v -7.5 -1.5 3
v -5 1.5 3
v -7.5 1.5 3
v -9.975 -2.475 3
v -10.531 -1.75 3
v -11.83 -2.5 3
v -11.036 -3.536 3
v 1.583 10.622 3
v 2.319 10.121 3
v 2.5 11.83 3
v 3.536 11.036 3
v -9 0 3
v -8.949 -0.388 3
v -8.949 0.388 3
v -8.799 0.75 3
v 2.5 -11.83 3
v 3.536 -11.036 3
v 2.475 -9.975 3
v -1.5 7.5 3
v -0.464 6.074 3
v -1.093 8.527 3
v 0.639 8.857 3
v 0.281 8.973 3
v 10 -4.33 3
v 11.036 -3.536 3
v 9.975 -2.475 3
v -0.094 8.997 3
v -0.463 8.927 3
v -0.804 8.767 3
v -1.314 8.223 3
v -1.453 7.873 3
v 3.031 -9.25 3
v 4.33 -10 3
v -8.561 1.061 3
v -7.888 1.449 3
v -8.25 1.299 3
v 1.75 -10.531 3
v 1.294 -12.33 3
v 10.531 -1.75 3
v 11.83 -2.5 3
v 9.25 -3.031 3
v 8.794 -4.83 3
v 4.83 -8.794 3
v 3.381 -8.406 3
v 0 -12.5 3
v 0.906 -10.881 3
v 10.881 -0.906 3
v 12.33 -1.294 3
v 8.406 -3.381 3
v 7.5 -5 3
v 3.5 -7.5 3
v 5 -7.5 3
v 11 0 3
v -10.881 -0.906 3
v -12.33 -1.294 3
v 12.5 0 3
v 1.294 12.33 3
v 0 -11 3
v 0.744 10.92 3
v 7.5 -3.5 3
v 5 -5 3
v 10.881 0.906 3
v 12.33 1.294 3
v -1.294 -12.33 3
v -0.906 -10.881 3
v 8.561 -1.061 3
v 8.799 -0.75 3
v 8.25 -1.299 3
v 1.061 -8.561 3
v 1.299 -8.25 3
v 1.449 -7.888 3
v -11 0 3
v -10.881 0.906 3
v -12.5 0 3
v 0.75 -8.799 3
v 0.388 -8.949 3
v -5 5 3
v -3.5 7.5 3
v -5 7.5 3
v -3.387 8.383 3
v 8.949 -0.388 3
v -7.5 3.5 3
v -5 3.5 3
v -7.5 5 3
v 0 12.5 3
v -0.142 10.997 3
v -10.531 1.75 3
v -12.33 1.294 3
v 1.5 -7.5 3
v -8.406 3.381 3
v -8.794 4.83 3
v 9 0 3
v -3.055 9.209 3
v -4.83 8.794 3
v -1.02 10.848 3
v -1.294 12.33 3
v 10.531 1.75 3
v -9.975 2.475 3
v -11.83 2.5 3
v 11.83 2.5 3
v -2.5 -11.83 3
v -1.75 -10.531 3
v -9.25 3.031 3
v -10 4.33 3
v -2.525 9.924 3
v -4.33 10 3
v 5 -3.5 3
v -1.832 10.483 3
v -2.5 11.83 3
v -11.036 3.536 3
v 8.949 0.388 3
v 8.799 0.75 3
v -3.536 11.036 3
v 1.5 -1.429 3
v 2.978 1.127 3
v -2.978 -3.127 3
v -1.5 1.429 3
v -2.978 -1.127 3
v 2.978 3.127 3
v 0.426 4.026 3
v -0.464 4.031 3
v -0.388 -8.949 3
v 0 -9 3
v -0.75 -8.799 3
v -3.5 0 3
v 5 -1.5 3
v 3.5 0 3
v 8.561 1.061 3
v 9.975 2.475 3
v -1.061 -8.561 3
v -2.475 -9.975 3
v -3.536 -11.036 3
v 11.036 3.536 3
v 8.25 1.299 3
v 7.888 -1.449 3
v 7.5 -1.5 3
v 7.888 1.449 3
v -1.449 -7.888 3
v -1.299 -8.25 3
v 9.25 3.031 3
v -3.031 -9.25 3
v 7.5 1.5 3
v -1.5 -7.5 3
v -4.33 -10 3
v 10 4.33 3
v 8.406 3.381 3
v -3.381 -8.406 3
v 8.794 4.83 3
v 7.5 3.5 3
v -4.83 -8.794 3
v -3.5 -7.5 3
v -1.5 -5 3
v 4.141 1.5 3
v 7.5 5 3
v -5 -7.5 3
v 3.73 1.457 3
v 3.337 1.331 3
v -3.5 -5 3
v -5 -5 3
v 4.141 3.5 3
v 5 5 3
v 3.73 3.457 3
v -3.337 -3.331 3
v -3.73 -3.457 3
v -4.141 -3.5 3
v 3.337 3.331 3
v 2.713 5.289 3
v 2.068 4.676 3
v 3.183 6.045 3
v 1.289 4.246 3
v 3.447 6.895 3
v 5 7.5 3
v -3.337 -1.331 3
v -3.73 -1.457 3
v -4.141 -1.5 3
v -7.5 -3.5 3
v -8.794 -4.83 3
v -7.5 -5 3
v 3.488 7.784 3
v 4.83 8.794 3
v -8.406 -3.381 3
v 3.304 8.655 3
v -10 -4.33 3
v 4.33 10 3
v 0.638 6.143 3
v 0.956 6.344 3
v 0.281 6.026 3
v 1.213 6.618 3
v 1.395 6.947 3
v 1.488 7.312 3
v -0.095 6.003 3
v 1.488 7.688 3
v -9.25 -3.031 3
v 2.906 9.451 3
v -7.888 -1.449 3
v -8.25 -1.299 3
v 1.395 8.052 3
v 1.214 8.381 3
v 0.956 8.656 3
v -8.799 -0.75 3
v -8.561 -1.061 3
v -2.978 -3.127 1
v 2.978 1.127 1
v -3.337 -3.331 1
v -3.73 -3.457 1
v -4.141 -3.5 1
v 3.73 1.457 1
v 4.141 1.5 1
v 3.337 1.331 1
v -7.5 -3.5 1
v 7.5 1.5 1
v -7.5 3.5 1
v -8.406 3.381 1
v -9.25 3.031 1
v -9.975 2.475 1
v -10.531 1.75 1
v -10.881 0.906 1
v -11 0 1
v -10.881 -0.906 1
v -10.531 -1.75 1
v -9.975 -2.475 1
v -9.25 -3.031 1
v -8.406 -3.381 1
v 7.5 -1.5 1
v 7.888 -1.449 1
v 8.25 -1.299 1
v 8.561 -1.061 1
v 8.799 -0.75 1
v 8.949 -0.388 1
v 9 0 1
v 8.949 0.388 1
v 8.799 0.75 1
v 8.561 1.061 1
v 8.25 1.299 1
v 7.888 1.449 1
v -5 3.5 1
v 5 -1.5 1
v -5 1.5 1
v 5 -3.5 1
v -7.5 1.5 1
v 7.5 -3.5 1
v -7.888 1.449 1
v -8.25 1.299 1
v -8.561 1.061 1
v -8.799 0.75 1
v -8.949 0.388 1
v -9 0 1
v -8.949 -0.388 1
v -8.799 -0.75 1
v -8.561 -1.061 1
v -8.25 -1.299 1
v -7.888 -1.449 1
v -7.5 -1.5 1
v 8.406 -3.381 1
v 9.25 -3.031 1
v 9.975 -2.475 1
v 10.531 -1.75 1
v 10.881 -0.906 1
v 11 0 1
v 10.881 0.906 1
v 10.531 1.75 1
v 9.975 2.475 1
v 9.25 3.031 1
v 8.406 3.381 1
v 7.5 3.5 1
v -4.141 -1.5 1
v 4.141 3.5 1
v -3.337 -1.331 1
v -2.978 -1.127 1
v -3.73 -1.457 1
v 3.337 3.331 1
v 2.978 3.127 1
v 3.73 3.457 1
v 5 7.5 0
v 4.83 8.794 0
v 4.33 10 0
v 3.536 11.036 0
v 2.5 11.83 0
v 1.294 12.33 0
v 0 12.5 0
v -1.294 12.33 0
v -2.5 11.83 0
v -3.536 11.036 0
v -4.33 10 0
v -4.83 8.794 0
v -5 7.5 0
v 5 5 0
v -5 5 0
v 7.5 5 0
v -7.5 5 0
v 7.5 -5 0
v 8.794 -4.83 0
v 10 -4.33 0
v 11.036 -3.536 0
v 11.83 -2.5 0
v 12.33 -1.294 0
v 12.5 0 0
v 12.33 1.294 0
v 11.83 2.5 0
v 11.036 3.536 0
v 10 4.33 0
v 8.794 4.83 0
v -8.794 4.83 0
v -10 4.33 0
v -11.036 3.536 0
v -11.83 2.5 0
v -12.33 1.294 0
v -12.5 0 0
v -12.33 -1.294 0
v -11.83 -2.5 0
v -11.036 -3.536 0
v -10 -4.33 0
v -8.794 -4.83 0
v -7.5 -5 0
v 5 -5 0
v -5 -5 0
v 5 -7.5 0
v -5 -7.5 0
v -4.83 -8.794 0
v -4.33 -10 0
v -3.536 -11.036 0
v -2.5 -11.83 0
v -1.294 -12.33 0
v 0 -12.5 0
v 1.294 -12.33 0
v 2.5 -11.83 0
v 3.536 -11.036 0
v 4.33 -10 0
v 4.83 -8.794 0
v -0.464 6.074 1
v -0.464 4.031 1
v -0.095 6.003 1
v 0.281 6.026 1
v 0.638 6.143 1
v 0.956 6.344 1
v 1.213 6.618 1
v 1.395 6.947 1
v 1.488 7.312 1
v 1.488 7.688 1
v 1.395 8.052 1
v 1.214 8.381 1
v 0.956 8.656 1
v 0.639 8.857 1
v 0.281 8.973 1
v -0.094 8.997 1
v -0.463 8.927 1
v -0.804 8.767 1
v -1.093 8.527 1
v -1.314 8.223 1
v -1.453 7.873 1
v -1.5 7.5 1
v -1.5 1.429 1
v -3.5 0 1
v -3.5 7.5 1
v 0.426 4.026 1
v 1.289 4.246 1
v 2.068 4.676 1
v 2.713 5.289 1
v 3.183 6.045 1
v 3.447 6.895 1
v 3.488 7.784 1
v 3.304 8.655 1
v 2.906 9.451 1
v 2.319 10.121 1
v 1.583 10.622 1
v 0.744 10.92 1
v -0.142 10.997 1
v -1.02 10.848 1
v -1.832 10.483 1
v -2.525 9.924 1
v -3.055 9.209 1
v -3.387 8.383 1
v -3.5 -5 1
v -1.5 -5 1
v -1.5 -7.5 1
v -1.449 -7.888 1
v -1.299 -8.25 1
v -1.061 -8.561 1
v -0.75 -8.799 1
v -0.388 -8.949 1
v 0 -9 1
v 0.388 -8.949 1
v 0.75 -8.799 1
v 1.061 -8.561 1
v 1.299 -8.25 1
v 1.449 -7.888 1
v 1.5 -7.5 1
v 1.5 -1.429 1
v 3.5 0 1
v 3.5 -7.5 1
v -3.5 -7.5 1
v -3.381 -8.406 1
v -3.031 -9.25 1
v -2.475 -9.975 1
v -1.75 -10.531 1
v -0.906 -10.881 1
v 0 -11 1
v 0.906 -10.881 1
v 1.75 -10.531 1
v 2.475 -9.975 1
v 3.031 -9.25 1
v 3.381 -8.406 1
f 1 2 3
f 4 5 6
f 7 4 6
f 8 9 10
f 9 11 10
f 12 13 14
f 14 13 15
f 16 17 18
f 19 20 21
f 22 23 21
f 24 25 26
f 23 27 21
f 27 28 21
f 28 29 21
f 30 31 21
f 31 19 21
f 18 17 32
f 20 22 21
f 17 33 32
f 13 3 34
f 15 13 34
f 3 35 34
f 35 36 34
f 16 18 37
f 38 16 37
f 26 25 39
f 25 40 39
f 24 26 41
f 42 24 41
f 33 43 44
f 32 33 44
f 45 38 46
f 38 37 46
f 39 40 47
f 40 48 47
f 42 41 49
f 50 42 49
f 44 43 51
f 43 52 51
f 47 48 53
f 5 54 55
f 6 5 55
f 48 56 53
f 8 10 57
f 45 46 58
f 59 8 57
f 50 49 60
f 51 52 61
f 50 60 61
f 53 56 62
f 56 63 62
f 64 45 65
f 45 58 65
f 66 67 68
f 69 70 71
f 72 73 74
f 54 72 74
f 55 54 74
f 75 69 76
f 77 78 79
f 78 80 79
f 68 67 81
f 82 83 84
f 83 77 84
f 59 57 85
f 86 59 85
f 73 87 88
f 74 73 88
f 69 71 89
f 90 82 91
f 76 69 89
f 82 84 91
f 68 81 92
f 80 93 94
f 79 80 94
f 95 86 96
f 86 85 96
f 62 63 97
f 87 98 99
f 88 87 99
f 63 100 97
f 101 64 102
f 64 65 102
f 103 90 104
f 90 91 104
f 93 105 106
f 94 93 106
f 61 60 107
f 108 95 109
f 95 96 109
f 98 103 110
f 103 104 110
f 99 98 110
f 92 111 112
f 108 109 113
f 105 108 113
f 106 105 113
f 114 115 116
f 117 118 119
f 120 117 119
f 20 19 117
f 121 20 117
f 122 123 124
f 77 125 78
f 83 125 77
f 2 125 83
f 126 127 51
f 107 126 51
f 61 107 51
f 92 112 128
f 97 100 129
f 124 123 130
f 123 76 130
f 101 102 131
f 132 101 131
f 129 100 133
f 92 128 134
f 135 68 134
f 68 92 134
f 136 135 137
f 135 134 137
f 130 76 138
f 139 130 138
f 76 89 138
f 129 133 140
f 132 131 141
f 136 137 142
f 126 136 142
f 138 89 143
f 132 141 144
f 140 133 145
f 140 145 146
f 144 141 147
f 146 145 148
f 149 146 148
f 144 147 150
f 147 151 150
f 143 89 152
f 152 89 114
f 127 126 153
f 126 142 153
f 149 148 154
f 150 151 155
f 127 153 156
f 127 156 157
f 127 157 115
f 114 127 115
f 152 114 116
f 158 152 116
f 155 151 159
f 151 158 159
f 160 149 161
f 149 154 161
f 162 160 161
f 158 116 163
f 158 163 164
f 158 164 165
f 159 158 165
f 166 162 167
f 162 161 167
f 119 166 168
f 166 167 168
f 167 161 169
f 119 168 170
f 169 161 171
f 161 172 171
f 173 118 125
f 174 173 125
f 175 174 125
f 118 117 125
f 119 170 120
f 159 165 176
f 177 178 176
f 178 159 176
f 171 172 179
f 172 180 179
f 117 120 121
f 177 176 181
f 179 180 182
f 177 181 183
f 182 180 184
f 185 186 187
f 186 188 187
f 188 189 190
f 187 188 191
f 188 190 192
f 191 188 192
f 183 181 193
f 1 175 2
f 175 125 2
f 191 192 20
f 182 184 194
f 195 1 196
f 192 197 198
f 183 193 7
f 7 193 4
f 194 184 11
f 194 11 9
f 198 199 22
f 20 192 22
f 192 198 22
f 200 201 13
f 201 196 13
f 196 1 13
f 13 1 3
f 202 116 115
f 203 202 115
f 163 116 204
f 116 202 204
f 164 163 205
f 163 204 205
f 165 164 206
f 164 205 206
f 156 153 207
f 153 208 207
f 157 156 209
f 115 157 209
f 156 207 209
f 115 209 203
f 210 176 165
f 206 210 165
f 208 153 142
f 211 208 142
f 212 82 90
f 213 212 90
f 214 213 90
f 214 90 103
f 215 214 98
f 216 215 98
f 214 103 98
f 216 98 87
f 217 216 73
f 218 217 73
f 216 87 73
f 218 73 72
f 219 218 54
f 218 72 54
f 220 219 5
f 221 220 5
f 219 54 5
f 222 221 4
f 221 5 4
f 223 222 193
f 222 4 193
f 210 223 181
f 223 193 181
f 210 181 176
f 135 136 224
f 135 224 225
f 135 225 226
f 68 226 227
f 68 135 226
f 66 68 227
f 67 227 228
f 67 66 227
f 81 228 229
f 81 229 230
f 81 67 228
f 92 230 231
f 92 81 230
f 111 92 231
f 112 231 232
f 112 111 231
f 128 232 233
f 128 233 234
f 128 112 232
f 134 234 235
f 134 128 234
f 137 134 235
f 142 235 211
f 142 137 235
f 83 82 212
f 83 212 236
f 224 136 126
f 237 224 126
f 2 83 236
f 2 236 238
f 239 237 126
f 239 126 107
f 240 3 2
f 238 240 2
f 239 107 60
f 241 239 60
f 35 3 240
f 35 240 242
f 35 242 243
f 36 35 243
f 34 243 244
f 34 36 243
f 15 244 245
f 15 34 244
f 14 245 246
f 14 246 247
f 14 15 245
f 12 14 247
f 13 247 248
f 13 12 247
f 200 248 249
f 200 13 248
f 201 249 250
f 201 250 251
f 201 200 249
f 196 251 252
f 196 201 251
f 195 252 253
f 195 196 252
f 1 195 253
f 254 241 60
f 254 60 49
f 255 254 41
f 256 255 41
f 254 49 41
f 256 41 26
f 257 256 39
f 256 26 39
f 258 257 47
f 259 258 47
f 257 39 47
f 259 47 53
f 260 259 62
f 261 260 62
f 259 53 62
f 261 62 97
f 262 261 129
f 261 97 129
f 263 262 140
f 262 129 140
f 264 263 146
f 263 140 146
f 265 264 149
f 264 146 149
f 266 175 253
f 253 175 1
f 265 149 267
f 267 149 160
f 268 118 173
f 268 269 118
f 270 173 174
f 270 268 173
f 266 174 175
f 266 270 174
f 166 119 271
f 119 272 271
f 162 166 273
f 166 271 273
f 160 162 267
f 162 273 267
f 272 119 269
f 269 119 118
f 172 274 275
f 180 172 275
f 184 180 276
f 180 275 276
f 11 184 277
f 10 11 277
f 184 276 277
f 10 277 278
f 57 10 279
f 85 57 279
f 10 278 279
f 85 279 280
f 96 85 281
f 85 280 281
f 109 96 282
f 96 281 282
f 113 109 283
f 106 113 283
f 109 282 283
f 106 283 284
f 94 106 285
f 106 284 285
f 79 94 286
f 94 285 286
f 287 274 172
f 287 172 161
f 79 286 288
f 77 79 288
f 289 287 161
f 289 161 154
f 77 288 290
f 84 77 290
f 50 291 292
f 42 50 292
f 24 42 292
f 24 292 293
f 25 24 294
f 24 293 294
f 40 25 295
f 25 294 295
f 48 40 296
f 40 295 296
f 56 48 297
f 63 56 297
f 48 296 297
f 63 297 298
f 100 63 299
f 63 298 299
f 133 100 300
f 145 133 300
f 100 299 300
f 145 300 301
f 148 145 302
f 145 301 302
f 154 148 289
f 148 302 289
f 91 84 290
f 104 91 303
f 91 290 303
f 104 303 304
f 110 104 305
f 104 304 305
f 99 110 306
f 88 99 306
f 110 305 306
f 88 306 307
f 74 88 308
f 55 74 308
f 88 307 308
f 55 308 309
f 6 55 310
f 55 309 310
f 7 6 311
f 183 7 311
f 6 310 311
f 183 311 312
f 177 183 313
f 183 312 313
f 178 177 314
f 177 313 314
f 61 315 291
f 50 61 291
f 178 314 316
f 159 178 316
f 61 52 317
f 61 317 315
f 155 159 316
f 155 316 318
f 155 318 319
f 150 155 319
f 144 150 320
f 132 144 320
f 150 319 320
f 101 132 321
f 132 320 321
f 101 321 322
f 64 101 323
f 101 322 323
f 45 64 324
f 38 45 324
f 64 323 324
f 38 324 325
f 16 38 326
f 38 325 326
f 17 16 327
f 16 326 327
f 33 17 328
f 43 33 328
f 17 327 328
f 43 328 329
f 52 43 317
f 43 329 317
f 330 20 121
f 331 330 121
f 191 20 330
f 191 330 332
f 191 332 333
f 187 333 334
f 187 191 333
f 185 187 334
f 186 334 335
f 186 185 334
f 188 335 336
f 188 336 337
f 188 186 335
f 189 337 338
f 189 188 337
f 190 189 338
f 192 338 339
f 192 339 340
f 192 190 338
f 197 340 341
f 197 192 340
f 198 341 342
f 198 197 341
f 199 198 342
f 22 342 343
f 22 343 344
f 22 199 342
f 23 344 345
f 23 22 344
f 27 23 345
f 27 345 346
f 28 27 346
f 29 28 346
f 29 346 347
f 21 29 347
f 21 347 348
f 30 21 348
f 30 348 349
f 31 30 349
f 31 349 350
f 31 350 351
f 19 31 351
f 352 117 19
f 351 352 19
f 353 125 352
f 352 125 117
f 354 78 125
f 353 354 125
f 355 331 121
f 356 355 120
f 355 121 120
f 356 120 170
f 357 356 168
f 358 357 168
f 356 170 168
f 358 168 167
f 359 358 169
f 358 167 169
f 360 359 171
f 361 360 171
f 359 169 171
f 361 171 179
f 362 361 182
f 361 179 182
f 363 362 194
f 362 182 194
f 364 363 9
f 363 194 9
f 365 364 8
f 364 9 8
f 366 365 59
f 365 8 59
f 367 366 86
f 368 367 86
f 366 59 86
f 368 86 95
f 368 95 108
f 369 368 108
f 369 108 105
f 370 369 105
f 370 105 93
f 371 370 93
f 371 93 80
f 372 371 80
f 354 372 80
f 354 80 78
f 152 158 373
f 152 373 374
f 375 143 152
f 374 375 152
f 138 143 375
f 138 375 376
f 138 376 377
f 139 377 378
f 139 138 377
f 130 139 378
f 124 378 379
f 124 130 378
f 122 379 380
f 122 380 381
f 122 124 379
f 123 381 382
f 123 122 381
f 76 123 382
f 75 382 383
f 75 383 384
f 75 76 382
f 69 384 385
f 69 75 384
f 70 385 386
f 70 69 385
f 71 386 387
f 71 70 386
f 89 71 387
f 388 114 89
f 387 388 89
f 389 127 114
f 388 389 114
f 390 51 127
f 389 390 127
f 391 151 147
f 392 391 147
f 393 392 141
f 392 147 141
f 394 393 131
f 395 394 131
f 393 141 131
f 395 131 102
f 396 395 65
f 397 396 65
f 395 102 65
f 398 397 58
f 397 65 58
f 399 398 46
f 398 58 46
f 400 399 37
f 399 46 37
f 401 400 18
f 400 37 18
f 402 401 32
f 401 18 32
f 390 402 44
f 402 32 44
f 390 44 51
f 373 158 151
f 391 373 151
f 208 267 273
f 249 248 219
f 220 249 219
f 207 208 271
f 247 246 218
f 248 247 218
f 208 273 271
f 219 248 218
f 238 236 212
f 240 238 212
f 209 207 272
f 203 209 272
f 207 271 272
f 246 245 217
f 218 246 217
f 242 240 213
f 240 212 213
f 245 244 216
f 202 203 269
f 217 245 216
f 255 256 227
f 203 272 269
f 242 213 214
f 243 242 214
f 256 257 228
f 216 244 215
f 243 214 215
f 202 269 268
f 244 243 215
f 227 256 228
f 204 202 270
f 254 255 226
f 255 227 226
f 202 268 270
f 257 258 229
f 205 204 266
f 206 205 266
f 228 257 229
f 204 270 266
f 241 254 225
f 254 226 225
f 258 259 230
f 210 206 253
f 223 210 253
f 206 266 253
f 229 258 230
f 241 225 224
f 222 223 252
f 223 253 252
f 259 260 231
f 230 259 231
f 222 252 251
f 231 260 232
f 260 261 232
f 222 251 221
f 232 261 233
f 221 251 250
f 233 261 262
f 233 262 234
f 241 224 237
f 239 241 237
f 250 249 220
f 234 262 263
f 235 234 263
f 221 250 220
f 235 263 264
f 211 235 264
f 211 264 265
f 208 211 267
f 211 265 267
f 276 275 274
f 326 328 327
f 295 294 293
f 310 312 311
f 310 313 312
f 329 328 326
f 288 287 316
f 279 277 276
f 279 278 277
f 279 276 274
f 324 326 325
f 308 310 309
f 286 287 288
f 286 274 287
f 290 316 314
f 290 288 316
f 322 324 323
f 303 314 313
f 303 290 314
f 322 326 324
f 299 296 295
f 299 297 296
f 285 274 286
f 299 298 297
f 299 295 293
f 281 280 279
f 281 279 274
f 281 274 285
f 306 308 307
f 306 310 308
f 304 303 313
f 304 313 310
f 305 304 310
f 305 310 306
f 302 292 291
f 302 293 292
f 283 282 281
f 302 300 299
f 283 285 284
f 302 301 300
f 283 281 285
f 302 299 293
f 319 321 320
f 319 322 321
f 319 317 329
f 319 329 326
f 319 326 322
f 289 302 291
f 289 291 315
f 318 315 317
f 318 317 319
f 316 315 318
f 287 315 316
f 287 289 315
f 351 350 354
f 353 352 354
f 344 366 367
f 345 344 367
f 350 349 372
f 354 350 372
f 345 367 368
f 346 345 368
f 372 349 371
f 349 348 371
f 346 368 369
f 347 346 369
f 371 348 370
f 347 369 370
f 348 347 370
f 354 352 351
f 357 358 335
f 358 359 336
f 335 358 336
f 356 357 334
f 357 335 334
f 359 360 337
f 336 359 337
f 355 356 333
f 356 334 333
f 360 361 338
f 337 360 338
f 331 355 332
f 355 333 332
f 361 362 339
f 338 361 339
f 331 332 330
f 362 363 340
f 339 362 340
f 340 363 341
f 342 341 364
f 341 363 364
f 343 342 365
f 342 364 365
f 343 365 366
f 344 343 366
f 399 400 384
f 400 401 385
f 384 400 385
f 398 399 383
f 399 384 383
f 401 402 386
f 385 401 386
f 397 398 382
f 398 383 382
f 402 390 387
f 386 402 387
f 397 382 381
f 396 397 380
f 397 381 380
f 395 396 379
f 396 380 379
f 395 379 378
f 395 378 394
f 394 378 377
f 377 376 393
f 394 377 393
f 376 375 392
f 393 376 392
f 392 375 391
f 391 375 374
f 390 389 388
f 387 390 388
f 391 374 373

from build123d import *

# Parameters (mm, degrees)
PAD_DEPTH    = 3
POCKET_DEPTH = 2
FILLET_R     = 2
FILLET001_R  = 2
FILLET002_R  = 2
FILLET003_R  = 2


with BuildPart() as part:
    # Sketch → Pad (new body)
    with BuildSketch(Plane.XY):
        with BuildLine():
            ThreePointArc((5.000007, 7.500007), (0, 12.500023), (-5.000007, 7.500007))
            Line((-5.000007, 7.500007), (-5.000007, 5.000007))
            Line((-5.000007, 5.000007), (-7.500007, 5.000007))
            ThreePointArc((-7.500007, 5.000007), (-12.499997, 0), (-7.500007, -5.000007))
            Line((-7.500007, -5.000007), (-5.000007, -5.000007))
            Line((-5.000007, -5.000007), (-5.000007, -7.500007))
            ThreePointArc((-5.000007, -7.500007), (0, -12.500013), (5.000007, -7.500007))
            Line((5.000007, -7.500007), (5.000007, -5.000007))
            Line((5.000007, -5.000007), (7.500007, -5.000007))
            ThreePointArc((7.500007, -5.000007), (12.500003, 0), (7.500007, 5.000007))
            Line((5.000007, 5.000007), (7.500007, 5.000007))
            Line((5.000007, 7.500007), (5.000007, 5.000007))
        make_face()
    extrude(amount=PAD_DEPTH)

    # Sketch001 → Pocket (cut)
    with BuildSketch(Plane.XY.offset(3)):
        with BuildLine():
            ThreePointArc((-7.500007, 3.500007), (-10.999997, 0), (-7.500007, -3.500007))
            Line((-7.500007, -3.500007), (-3.500007, -3.500007))
            Line((-3.500007, -3.500007), (3.500007, 1.500007))
            Line((3.500007, 1.500007), (7.500007, 1.500007))
            ThreePointArc((7.499986, -1.500007), (9.000003, -1e-05), (7.500007, 1.500007))
            Line((7.499986, -1.500007), (5.000007, -1.500007))
            Line((5.000007, -1.500007), (5.000007, -3.500007))
            Line((5.000007, -3.500007), (7.499986, -3.500007))
            ThreePointArc((7.499986, -3.500007), (11.000003, -1e-05), (7.500007, 3.500007))
            Line((7.500007, 3.500007), (3.500007, 3.500007))
            Line((3.500007, 3.500007), (-3.500007, -1.500007))
            Line((-3.500007, -1.500007), (-7.500007, -1.500007))
            ThreePointArc((-7.500007, 1.500007), (-8.999997, 0), (-7.500007, -1.500007))
            Line((-7.500007, 1.500007), (-5.000007, 1.500007))
            Line((-5.000007, 3.500007), (-5.000007, 1.500007))
            Line((-7.500007, 3.500007), (-5.000007, 3.500007))
        make_face()
        with BuildLine():
            Line((-3.500007, -5.000007), (-3.500007, -7.500007))
            ThreePointArc((-3.500007, -7.500007), (0, -11.000013), (3.500007, -7.500007))
            Line((3.500007, -7.500007), (3.500007, 0))
            Line((3.500007, 0), (1.500007, -1.428573))
            Line((1.500007, -1.428573), (1.500007, -7.500007))
            ThreePointArc((-1.500007, -7.500007), (0, -9.000013), (1.500007, -7.500007))
            Line((-1.500007, -7.500007), (-1.500007, -5.000007))
            Line((-3.500007, -5.000007), (-1.500007, -5.000007))
        make_face()
        with BuildLine():
            ThreePointArc((-0.464101, 4.030917), (2.633854, 9.804981), (-3.500007, 7.50001))
            Line((-3.500007, 7.50001), (-3.500007, 0))
            Line((-3.500007, 0), (-1.500007, 1.428573))
            Line((-1.500007, 1.428573), (-1.500007, 7.500014))
            ThreePointArc((-0.464101, 6.073612), (1.213707, 8.381456), (-1.500007, 7.500014))
            Line((-0.464101, 6.073612), (-0.464101, 4.030917))
        make_face()
    extrude(amount=-POCKET_DEPTH, mode=Mode.SUBTRACT)

    # Fillet
    fillet_edges = [part.edges().sort_by_distance(p)[0] for p in [
        (3.500007, 3.500007, 2),
    ]]
    fillet(fillet_edges, radius=FILLET_R)

    # Fillet001
    fillet001_edges = [part.edges().sort_by_distance(p)[0] for p in [
        (-3.500007, -1.500007, 2),
    ]]
    fillet(fillet001_edges, radius=FILLET001_R)

    # Fillet002
    fillet002_edges = [part.edges().sort_by_distance(p)[0] for p in [
        (3.500007, 1.500007, 2),
    ]]
    fillet(fillet002_edges, radius=FILLET002_R)

    # Fillet003
    fillet003_edges = [part.edges().sort_by_distance(p)[0] for p in [
        (-3.500007, -3.500007, 2),
    ]]
    fillet(fillet003_edges, radius=FILLET003_R)


solid = part.part
